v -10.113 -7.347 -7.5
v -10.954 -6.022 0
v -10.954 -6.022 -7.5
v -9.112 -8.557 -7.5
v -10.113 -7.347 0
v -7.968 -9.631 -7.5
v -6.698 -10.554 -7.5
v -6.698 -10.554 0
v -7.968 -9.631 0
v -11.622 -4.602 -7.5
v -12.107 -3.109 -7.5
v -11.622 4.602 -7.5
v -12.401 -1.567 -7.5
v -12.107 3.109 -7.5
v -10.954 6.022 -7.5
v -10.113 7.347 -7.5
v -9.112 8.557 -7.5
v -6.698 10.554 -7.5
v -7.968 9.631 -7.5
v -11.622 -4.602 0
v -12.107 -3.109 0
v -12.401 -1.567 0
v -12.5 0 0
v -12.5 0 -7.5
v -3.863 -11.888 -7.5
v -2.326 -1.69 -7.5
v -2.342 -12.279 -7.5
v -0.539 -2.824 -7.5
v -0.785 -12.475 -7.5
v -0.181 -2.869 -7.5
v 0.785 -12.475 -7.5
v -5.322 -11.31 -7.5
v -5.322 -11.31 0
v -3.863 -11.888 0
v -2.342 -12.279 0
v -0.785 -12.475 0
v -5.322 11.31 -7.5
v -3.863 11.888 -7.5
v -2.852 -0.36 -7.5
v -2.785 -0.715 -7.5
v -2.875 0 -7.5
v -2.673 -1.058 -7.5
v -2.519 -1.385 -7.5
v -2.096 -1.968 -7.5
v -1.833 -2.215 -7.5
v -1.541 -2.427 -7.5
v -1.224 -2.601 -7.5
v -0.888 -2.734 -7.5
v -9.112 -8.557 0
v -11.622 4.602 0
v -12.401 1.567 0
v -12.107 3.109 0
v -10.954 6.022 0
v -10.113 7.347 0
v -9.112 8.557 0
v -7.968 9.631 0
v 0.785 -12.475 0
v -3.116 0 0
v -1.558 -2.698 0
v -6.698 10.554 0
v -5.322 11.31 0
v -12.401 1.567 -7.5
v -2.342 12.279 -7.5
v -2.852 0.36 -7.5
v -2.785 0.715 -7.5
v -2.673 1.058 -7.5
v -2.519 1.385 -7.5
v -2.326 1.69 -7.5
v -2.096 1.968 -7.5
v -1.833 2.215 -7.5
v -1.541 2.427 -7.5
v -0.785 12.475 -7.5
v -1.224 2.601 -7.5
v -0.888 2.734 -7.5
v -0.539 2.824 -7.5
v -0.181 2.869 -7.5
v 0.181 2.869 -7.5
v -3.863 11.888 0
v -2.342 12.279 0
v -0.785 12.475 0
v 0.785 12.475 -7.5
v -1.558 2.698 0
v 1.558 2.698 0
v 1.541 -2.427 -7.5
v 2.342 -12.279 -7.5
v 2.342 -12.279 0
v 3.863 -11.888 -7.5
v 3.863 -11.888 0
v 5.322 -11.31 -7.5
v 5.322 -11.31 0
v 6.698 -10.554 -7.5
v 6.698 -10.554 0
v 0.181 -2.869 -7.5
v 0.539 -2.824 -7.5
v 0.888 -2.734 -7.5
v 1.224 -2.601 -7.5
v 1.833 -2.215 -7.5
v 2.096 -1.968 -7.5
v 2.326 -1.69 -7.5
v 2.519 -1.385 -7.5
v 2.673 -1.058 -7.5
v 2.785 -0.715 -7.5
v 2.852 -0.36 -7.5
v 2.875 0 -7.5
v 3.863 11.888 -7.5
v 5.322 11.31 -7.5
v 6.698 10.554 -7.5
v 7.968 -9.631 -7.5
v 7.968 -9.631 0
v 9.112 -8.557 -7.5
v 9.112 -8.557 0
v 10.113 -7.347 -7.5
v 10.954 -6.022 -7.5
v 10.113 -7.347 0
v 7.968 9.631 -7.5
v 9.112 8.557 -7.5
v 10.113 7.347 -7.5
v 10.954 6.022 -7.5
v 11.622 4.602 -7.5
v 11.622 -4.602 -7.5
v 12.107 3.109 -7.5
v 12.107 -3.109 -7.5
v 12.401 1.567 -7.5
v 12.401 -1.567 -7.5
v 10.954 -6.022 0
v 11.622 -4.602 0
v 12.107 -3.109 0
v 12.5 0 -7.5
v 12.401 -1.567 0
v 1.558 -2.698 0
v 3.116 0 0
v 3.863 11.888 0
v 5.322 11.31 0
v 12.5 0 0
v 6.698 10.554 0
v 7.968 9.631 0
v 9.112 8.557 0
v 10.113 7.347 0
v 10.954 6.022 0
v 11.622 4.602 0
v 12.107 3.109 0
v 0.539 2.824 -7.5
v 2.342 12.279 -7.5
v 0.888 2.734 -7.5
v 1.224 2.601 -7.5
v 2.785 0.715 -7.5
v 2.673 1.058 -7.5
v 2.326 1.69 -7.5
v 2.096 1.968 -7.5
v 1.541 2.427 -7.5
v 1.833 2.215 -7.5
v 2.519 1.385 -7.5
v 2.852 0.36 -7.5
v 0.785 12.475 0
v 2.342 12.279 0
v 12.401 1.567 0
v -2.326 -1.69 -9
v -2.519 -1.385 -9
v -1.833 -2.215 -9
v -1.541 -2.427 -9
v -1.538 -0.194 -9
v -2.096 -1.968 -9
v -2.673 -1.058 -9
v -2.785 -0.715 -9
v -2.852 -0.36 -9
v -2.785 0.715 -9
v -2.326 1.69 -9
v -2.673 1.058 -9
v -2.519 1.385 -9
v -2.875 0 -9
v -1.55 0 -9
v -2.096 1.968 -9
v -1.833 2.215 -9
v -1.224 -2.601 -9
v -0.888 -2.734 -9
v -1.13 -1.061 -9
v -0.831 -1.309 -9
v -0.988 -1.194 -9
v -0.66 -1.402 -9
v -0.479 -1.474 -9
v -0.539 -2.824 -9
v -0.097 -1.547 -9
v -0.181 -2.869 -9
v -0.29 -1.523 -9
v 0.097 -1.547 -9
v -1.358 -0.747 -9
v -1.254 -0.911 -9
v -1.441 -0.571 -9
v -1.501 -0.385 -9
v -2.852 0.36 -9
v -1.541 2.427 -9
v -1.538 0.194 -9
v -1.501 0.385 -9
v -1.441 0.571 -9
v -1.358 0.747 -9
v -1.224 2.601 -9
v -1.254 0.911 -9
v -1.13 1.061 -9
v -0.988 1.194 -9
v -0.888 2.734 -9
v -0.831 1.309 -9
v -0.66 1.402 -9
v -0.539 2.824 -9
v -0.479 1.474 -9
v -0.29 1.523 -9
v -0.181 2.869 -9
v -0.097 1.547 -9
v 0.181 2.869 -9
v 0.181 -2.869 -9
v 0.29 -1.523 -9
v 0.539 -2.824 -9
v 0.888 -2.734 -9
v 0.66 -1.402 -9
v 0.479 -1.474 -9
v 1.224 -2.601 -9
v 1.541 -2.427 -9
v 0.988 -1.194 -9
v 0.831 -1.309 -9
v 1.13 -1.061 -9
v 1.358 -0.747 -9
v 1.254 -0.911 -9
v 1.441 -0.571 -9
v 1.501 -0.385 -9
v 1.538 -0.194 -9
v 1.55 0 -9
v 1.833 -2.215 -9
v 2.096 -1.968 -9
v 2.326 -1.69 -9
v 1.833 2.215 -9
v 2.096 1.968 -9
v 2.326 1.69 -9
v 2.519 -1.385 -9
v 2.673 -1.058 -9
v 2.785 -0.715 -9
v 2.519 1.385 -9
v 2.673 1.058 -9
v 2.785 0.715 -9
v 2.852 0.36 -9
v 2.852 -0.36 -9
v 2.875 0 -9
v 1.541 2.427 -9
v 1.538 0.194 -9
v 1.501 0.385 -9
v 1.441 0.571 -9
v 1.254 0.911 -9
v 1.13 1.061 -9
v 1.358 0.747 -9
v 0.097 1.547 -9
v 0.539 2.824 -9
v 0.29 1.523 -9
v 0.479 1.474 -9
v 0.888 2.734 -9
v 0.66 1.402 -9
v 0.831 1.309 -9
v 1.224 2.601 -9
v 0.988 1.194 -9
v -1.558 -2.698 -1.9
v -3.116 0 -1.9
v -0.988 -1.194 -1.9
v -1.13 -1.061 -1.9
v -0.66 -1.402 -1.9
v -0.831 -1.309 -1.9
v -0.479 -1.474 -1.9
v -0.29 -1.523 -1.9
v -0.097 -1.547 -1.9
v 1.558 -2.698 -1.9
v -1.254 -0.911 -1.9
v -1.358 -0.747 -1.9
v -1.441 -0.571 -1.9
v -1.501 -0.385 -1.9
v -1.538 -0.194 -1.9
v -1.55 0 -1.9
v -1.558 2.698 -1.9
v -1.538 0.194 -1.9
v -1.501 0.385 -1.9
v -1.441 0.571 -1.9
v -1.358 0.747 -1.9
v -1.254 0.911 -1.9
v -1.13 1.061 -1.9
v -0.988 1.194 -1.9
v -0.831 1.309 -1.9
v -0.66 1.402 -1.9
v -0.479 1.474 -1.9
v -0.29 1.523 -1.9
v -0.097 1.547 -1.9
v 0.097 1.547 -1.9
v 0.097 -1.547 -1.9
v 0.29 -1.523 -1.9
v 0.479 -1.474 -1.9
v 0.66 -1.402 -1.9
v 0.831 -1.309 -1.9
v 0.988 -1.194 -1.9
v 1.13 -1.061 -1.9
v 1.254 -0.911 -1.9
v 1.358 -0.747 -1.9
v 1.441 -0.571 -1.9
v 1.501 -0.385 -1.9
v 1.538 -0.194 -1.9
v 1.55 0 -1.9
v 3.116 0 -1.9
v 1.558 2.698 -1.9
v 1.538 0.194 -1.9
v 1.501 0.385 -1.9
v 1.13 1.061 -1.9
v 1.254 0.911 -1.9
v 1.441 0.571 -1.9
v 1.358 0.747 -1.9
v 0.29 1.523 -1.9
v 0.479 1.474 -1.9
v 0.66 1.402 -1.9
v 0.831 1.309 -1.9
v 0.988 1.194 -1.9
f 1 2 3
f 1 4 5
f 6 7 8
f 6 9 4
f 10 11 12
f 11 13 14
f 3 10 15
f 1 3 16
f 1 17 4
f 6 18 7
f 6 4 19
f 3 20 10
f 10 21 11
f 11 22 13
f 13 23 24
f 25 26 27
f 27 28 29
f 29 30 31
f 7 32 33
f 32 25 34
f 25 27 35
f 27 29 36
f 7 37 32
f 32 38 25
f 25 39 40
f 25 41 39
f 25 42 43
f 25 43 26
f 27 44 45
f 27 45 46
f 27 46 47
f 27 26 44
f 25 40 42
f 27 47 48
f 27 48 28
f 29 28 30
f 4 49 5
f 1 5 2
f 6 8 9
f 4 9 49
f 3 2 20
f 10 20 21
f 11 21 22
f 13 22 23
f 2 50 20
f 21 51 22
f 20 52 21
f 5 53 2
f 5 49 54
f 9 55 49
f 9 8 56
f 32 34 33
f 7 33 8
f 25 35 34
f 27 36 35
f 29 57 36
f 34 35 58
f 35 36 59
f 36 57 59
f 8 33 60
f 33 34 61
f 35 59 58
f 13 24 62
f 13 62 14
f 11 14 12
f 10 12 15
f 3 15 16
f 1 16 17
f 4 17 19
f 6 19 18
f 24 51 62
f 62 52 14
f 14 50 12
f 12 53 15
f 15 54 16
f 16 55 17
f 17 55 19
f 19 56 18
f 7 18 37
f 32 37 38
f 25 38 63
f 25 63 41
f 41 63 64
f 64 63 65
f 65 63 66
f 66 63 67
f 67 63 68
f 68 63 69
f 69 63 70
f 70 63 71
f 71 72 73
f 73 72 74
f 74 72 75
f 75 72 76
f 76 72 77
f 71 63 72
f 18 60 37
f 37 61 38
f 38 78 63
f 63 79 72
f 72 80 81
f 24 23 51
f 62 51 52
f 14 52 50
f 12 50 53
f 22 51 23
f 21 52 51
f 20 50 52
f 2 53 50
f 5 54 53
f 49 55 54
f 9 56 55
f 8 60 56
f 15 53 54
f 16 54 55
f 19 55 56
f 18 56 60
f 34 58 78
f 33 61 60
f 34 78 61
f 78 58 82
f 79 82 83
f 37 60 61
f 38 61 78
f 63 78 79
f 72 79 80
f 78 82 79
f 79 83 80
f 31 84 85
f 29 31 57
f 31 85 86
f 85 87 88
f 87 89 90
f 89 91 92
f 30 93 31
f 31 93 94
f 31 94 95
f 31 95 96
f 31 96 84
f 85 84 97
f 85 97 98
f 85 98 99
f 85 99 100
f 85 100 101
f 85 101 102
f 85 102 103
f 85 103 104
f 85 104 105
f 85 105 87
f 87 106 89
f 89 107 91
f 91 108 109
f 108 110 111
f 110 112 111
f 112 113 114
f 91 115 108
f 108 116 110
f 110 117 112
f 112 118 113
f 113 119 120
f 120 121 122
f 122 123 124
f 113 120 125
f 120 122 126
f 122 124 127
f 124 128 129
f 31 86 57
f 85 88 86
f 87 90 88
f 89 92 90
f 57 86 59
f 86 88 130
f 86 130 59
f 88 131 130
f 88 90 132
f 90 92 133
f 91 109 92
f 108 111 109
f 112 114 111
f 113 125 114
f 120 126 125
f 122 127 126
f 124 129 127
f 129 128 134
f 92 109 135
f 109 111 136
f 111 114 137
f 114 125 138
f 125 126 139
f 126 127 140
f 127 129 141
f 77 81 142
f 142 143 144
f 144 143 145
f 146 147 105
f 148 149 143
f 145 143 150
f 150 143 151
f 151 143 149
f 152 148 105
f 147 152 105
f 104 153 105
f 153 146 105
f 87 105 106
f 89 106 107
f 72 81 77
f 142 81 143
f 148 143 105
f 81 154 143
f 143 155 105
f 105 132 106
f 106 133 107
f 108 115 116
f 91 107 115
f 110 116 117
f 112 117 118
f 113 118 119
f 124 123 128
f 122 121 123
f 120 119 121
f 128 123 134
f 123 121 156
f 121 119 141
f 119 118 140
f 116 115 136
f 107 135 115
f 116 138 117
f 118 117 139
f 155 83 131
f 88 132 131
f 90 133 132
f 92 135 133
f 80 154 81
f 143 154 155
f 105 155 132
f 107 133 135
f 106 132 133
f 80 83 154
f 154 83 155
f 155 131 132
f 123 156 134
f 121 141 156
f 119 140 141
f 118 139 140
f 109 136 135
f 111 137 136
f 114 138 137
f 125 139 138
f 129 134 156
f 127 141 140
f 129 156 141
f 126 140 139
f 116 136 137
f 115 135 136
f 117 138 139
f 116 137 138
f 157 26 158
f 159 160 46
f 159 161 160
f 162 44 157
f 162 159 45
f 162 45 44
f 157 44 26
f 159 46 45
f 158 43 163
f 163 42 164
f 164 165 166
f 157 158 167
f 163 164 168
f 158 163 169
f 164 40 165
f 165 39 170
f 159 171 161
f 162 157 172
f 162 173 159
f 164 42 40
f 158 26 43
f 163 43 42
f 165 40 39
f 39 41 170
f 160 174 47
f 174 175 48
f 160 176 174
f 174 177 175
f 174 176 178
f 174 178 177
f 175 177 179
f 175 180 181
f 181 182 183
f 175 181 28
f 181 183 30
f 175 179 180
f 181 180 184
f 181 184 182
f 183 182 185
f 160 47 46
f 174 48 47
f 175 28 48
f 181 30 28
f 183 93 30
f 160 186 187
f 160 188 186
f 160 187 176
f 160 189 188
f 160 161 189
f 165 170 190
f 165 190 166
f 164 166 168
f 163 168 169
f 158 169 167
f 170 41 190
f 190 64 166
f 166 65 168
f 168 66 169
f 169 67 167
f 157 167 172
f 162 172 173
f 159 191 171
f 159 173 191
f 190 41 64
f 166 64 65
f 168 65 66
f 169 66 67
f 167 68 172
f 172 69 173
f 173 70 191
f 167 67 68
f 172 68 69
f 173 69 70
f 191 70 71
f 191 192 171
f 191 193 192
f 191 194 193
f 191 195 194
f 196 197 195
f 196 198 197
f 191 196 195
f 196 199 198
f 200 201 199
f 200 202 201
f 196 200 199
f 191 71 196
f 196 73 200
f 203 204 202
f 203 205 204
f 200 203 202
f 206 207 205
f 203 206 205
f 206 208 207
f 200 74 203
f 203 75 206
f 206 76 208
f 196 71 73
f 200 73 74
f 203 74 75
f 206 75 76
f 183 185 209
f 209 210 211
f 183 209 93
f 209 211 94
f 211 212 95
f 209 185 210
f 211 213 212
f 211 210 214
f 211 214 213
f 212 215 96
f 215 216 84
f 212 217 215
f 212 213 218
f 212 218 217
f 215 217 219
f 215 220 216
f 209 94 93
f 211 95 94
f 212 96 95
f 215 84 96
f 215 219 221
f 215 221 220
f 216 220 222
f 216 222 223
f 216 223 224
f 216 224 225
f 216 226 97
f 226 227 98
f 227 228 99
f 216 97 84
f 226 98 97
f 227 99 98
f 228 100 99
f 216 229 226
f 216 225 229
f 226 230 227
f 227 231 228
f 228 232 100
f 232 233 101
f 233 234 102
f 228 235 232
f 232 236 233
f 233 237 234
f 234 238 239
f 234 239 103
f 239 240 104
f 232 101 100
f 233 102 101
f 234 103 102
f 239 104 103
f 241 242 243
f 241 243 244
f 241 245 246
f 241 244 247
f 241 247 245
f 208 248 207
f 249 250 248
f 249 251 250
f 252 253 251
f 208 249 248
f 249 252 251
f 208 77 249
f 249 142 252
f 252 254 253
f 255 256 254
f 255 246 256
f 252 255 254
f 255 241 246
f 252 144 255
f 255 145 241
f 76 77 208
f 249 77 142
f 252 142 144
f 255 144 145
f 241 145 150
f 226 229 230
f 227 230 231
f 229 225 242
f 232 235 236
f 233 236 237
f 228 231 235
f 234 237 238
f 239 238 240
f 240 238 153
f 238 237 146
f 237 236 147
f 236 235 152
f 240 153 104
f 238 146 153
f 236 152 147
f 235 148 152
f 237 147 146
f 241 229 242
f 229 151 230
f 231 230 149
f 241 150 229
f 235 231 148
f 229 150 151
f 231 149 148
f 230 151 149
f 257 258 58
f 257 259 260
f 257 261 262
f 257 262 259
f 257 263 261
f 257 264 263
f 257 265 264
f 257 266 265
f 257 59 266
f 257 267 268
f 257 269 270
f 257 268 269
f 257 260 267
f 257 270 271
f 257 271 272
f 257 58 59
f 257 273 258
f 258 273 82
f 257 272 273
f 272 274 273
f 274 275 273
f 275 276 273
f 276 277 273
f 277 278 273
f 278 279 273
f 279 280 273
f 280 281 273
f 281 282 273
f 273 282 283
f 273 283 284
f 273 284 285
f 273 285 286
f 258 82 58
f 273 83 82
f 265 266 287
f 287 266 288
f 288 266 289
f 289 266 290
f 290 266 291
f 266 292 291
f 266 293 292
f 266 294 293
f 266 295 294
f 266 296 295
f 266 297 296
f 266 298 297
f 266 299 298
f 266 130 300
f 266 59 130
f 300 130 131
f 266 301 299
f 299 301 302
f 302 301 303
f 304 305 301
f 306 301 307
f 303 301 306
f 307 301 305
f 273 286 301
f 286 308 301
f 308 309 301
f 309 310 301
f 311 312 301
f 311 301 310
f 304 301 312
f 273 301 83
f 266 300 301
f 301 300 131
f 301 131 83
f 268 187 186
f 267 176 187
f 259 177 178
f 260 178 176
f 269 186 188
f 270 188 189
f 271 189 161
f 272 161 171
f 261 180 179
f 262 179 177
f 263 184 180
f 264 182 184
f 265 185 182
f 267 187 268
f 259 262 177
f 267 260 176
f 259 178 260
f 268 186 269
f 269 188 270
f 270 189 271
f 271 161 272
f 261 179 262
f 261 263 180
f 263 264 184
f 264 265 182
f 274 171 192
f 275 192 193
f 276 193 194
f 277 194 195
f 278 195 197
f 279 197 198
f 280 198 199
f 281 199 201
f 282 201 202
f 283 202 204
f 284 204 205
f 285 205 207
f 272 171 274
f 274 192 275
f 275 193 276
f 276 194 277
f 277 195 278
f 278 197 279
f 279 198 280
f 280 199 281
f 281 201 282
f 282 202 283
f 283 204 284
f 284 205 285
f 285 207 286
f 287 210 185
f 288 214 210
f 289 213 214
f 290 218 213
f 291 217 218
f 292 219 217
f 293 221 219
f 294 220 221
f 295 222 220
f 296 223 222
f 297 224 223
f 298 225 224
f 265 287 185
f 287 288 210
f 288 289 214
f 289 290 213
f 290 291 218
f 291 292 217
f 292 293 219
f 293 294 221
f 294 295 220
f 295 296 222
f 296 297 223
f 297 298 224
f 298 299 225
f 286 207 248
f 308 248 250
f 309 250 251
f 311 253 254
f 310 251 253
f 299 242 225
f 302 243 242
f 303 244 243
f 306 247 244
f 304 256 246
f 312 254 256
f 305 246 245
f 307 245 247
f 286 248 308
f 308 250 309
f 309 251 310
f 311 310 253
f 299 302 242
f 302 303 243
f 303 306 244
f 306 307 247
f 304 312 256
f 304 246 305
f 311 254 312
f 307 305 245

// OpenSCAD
$fn = 50;


difference() {
	union() {
		translate(v = [0, 0, -7.5000000000]) {
			cylinder(h = 7.5000000000, r = 12.5000000000);
		}
		#translate(v = [0, 0, -9.0000000000]) {
			cylinder(h = 9, r = 2.8750000000);
		}
	}
	union() {
		translate(v = [0, 0, 0]) {
			rotate(a = [0, 0, 0]) {
				difference() {
					union() {
						translate(v = [0, 0, -1.9000000000]) {
							linear_extrude(height = 1.9000000000) {
								polygon(points = [[3.1158000000, 0.0000000000], [1.5579000000, 2.6983619531], [-1.5579000000, 2.6983619531], [-3.1158000000, 0.0000000000], [-1.5579000000, -2.6983619531], [1.5579000000, -2.6983619531]]);
							}
						}
					}
					union();
				}
			}
		}
		#translate(v = [0, 0, -100.0000000000]) {
			cylinder(h = 200, r = 1.5500000000);
		}
	}
}
